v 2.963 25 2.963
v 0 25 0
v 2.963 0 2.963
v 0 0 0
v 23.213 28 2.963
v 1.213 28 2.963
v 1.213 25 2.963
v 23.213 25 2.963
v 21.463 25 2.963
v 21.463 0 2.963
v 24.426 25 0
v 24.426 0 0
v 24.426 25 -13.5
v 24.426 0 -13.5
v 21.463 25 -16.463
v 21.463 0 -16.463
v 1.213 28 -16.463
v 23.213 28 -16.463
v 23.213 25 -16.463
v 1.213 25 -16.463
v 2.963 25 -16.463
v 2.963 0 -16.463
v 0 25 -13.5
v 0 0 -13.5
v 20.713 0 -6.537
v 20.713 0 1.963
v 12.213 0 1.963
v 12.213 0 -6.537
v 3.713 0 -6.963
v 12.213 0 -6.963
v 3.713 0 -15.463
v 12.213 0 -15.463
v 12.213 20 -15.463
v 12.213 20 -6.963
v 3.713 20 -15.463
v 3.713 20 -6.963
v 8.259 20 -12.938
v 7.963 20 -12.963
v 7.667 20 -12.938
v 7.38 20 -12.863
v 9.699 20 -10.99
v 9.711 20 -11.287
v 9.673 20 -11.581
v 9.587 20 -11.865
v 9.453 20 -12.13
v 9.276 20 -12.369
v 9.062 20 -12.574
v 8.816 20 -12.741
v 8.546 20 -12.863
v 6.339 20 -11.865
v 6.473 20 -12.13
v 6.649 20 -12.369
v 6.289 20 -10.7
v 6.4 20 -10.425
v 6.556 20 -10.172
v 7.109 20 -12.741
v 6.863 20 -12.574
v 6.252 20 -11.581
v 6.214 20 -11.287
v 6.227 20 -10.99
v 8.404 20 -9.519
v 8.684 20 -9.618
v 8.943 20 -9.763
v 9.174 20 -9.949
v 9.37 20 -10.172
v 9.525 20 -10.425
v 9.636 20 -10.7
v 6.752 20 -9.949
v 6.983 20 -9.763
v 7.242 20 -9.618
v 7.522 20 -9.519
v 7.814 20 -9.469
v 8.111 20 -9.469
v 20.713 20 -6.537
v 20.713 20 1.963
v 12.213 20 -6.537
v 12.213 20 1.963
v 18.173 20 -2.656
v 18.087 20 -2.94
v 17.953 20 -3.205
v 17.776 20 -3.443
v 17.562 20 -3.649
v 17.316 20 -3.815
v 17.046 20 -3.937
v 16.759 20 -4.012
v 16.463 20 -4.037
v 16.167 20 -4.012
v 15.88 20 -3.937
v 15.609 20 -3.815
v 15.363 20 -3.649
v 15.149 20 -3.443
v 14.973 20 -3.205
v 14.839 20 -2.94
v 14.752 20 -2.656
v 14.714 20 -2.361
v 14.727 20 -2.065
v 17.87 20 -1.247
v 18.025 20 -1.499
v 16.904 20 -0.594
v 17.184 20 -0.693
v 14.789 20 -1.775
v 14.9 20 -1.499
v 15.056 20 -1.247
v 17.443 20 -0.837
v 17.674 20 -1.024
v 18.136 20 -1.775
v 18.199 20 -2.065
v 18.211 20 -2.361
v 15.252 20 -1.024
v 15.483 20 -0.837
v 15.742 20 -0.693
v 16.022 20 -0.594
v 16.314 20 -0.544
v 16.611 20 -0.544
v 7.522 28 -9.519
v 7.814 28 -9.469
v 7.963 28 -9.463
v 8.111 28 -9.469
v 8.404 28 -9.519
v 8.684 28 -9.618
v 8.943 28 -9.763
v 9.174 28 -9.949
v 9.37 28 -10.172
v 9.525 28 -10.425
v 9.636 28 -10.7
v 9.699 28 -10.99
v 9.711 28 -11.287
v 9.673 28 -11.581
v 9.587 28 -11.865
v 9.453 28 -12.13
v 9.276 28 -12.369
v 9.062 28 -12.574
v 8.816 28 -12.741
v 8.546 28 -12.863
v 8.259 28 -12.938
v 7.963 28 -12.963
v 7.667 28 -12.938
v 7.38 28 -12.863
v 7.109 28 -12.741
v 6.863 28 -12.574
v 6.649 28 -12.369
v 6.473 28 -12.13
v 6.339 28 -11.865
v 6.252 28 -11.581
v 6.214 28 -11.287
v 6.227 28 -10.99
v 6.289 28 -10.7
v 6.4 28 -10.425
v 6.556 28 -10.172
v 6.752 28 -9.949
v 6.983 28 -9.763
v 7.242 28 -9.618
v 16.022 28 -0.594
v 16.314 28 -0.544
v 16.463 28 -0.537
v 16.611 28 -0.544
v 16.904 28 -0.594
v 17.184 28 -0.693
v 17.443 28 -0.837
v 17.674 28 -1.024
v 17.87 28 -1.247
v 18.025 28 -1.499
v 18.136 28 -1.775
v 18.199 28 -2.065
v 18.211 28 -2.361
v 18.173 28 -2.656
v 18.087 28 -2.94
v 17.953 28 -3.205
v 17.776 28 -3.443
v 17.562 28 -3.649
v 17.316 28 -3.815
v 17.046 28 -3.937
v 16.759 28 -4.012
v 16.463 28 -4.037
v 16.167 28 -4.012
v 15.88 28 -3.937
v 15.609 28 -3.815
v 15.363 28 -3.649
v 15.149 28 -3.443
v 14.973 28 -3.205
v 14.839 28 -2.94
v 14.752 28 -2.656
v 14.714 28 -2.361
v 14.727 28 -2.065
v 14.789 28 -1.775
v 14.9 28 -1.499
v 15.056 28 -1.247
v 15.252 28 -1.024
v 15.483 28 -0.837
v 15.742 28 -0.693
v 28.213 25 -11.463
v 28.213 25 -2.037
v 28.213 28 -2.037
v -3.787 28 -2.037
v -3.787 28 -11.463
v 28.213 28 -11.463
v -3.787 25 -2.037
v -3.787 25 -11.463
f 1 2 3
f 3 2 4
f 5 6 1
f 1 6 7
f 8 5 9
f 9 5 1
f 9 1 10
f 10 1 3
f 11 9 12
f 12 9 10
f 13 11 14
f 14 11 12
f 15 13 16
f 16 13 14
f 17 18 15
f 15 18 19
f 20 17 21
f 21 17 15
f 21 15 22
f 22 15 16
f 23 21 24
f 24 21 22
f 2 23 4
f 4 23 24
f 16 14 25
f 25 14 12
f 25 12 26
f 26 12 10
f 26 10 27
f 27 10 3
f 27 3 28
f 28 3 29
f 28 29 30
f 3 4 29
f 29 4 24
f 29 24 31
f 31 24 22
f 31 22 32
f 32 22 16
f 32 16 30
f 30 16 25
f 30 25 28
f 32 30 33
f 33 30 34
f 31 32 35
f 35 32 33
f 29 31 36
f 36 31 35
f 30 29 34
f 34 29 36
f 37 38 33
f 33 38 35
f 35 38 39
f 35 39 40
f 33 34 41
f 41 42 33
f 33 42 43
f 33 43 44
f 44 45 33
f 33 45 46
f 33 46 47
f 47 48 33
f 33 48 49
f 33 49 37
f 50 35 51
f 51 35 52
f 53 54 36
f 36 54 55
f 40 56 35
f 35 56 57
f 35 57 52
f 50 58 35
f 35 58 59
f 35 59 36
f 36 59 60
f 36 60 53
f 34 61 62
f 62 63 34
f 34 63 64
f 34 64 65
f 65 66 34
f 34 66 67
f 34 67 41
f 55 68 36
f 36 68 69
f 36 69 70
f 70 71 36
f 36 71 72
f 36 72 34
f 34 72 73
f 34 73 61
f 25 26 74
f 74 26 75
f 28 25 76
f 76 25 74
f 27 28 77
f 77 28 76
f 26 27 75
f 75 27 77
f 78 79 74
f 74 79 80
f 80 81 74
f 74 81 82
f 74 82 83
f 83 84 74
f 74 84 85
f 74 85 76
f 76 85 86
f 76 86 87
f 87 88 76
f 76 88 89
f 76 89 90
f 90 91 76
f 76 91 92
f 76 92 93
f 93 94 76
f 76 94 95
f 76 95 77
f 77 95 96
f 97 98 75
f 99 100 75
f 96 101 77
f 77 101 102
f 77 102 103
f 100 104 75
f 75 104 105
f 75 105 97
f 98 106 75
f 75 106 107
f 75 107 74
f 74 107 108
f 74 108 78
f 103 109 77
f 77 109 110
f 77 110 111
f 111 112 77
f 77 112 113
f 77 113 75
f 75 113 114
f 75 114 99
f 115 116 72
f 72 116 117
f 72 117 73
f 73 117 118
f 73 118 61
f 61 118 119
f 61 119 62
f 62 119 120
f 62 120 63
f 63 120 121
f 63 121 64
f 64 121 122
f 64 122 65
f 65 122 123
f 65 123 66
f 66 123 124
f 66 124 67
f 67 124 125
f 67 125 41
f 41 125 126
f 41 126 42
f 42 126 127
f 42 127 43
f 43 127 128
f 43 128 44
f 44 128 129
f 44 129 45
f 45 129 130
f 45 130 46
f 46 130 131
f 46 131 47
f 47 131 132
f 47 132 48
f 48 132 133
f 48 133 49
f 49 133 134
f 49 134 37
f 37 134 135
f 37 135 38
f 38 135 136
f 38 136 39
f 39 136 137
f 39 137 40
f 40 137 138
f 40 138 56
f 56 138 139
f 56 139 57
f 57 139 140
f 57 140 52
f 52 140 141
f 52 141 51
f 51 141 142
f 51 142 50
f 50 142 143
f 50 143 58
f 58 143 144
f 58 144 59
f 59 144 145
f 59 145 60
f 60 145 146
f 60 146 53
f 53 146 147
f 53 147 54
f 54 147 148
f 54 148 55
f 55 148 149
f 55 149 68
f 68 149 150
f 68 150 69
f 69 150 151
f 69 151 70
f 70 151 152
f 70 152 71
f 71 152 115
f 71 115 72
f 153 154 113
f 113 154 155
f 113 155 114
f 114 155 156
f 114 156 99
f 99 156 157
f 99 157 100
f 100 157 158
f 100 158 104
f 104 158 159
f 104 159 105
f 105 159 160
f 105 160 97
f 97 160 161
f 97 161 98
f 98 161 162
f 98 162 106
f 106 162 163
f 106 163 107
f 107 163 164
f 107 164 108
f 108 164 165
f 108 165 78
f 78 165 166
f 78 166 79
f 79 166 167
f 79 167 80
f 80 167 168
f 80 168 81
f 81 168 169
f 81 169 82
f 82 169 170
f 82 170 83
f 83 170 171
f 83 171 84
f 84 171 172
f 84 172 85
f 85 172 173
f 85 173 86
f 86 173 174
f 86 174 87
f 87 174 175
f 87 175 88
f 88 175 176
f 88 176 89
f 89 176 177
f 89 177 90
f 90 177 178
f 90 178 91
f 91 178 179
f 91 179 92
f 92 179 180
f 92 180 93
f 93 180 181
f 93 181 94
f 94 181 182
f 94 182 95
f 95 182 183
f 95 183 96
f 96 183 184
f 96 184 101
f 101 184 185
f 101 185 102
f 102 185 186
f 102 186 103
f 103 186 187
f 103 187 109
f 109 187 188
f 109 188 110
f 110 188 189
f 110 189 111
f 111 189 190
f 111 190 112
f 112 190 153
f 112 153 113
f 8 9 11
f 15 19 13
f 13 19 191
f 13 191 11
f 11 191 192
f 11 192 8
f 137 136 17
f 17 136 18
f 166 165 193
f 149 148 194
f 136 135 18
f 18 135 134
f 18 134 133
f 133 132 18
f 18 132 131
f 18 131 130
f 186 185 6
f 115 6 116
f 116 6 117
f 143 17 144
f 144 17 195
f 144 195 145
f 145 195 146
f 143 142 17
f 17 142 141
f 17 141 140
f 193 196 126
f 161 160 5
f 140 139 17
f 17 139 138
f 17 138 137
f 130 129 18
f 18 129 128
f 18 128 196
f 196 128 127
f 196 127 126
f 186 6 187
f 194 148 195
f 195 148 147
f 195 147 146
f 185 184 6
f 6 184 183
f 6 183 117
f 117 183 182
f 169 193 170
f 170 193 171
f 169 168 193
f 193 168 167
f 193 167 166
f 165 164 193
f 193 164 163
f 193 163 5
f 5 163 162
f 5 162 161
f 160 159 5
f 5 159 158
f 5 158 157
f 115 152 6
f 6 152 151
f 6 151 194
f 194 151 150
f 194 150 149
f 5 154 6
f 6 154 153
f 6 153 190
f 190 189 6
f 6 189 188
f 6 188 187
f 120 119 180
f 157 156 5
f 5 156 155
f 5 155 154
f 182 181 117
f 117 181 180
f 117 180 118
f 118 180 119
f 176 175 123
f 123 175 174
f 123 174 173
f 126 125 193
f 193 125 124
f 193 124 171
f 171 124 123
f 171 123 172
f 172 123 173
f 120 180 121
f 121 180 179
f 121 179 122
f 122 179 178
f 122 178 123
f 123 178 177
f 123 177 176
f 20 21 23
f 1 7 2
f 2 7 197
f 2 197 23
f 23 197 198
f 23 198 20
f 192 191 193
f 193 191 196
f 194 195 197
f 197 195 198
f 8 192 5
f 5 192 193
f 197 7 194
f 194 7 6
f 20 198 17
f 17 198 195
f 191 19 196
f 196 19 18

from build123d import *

# Parameters (mm, degrees)
BOSS_EXTRUDE1_DEPTH = 25
SKETCH5_W           = 8.5
SKETCH5_H           = 8.5
CUT_EXTRUDE1_DEPTH  = 20
SKETCH6_R           = 1.75
CUT_EXTRUDE2_DEPTH  = 13
SKETCH7_R           = 1.75
CUT_EXTRUDE3_DEPTH  = 13
SKETCH8_W           = 32
SKETCH8_H           = 19.425554826
SKETCH8_R           = 1.75
BOSS_EXTRUDE2_DEPTH = 3
CHAMFER3_SIZE       = 5


with BuildPart() as part:
    # Sketch2 → Boss-Extrude1 (new body)
    with BuildSketch(Plane(origin=(0, 0, 0), x_dir=(1, 0, 0), z_dir=(0, 1, 0))):
        Polygon((0, 0), (0, 13.5), (2.962777413, 16.462777413), (21.462777413, 16.462777413), (24.425554826, 13.5), (24.425554826, 0), (21.462777413, -2.962777413), (2.962777413, -2.962777413), align=None)
    extrude(amount=BOSS_EXTRUDE1_DEPTH)

    # Sketch5 → Cut-Extrude1 (cut)
    with BuildSketch(Plane(origin=(0, 0, 0), x_dir=(-1, 0, 0), z_dir=(0, -1, 0))):
        with Locations((-7.962777413, 11.212777413)):
            Rectangle(SKETCH5_W, SKETCH5_H)
        with Locations((-16.462777413, 2.287222587)):
            Rectangle(SKETCH5_W, SKETCH5_H)
    extrude(amount=-CUT_EXTRUDE1_DEPTH, mode=Mode.SUBTRACT)

    # Sketch6 → Cut-Extrude2 (cut)
    with BuildSketch(Plane(origin=(0, 20, 0), x_dir=(-1, 0, 0), z_dir=(0, -1, 0))):
        with Locations(Location((-7.962777413, 11.212777413, 0), (0, 0, 90))):
            Circle(SKETCH6_R)
    extrude(amount=-CUT_EXTRUDE2_DEPTH, mode=Mode.SUBTRACT)

    # Sketch7 → Cut-Extrude3 (cut)
    with BuildSketch(Plane.XZ.offset(-20)):
        with Locations(Location((16.462777413, -2.287222587, 0), (0, 0, 270))):
            Circle(SKETCH7_R)
    extrude(amount=-CUT_EXTRUDE3_DEPTH, mode=Mode.SUBTRACT)

    # Sketch8 → Boss-Extrude2 (add)
    with BuildSketch(Plane(origin=(0, 25, 0), x_dir=(1, 0, 0), z_dir=(0, 1, 0))):
        with Locations((12.212777413, 6.75)):
            Rectangle(SKETCH8_W, SKETCH8_H)
        with Locations(Location((7.962777413, 11.212777413, 0), (0, 0, 90))):
            Circle(SKETCH8_R, mode=Mode.SUBTRACT)
        with Locations(Location((16.462777413, 2.287222587, 0), (0, 0, 90))):
            Circle(SKETCH8_R, mode=Mode.SUBTRACT)
    extrude(amount=BOSS_EXTRUDE2_DEPTH)

    # Chamfer3
    chamfer3_edges = [part.edges().sort_by_distance(p)[0] for p in [
        (28.212777413, 26.5, 2.962777413),
        (28.212777413, 26.5, -16.462777413),
        (-3.787222587, 26.5, -16.462777413),
        (-3.787222587, 26.5, 2.962777413),
    ]]
    chamfer(chamfer3_edges, length=CHAMFER3_SIZE)


solid = part.part
